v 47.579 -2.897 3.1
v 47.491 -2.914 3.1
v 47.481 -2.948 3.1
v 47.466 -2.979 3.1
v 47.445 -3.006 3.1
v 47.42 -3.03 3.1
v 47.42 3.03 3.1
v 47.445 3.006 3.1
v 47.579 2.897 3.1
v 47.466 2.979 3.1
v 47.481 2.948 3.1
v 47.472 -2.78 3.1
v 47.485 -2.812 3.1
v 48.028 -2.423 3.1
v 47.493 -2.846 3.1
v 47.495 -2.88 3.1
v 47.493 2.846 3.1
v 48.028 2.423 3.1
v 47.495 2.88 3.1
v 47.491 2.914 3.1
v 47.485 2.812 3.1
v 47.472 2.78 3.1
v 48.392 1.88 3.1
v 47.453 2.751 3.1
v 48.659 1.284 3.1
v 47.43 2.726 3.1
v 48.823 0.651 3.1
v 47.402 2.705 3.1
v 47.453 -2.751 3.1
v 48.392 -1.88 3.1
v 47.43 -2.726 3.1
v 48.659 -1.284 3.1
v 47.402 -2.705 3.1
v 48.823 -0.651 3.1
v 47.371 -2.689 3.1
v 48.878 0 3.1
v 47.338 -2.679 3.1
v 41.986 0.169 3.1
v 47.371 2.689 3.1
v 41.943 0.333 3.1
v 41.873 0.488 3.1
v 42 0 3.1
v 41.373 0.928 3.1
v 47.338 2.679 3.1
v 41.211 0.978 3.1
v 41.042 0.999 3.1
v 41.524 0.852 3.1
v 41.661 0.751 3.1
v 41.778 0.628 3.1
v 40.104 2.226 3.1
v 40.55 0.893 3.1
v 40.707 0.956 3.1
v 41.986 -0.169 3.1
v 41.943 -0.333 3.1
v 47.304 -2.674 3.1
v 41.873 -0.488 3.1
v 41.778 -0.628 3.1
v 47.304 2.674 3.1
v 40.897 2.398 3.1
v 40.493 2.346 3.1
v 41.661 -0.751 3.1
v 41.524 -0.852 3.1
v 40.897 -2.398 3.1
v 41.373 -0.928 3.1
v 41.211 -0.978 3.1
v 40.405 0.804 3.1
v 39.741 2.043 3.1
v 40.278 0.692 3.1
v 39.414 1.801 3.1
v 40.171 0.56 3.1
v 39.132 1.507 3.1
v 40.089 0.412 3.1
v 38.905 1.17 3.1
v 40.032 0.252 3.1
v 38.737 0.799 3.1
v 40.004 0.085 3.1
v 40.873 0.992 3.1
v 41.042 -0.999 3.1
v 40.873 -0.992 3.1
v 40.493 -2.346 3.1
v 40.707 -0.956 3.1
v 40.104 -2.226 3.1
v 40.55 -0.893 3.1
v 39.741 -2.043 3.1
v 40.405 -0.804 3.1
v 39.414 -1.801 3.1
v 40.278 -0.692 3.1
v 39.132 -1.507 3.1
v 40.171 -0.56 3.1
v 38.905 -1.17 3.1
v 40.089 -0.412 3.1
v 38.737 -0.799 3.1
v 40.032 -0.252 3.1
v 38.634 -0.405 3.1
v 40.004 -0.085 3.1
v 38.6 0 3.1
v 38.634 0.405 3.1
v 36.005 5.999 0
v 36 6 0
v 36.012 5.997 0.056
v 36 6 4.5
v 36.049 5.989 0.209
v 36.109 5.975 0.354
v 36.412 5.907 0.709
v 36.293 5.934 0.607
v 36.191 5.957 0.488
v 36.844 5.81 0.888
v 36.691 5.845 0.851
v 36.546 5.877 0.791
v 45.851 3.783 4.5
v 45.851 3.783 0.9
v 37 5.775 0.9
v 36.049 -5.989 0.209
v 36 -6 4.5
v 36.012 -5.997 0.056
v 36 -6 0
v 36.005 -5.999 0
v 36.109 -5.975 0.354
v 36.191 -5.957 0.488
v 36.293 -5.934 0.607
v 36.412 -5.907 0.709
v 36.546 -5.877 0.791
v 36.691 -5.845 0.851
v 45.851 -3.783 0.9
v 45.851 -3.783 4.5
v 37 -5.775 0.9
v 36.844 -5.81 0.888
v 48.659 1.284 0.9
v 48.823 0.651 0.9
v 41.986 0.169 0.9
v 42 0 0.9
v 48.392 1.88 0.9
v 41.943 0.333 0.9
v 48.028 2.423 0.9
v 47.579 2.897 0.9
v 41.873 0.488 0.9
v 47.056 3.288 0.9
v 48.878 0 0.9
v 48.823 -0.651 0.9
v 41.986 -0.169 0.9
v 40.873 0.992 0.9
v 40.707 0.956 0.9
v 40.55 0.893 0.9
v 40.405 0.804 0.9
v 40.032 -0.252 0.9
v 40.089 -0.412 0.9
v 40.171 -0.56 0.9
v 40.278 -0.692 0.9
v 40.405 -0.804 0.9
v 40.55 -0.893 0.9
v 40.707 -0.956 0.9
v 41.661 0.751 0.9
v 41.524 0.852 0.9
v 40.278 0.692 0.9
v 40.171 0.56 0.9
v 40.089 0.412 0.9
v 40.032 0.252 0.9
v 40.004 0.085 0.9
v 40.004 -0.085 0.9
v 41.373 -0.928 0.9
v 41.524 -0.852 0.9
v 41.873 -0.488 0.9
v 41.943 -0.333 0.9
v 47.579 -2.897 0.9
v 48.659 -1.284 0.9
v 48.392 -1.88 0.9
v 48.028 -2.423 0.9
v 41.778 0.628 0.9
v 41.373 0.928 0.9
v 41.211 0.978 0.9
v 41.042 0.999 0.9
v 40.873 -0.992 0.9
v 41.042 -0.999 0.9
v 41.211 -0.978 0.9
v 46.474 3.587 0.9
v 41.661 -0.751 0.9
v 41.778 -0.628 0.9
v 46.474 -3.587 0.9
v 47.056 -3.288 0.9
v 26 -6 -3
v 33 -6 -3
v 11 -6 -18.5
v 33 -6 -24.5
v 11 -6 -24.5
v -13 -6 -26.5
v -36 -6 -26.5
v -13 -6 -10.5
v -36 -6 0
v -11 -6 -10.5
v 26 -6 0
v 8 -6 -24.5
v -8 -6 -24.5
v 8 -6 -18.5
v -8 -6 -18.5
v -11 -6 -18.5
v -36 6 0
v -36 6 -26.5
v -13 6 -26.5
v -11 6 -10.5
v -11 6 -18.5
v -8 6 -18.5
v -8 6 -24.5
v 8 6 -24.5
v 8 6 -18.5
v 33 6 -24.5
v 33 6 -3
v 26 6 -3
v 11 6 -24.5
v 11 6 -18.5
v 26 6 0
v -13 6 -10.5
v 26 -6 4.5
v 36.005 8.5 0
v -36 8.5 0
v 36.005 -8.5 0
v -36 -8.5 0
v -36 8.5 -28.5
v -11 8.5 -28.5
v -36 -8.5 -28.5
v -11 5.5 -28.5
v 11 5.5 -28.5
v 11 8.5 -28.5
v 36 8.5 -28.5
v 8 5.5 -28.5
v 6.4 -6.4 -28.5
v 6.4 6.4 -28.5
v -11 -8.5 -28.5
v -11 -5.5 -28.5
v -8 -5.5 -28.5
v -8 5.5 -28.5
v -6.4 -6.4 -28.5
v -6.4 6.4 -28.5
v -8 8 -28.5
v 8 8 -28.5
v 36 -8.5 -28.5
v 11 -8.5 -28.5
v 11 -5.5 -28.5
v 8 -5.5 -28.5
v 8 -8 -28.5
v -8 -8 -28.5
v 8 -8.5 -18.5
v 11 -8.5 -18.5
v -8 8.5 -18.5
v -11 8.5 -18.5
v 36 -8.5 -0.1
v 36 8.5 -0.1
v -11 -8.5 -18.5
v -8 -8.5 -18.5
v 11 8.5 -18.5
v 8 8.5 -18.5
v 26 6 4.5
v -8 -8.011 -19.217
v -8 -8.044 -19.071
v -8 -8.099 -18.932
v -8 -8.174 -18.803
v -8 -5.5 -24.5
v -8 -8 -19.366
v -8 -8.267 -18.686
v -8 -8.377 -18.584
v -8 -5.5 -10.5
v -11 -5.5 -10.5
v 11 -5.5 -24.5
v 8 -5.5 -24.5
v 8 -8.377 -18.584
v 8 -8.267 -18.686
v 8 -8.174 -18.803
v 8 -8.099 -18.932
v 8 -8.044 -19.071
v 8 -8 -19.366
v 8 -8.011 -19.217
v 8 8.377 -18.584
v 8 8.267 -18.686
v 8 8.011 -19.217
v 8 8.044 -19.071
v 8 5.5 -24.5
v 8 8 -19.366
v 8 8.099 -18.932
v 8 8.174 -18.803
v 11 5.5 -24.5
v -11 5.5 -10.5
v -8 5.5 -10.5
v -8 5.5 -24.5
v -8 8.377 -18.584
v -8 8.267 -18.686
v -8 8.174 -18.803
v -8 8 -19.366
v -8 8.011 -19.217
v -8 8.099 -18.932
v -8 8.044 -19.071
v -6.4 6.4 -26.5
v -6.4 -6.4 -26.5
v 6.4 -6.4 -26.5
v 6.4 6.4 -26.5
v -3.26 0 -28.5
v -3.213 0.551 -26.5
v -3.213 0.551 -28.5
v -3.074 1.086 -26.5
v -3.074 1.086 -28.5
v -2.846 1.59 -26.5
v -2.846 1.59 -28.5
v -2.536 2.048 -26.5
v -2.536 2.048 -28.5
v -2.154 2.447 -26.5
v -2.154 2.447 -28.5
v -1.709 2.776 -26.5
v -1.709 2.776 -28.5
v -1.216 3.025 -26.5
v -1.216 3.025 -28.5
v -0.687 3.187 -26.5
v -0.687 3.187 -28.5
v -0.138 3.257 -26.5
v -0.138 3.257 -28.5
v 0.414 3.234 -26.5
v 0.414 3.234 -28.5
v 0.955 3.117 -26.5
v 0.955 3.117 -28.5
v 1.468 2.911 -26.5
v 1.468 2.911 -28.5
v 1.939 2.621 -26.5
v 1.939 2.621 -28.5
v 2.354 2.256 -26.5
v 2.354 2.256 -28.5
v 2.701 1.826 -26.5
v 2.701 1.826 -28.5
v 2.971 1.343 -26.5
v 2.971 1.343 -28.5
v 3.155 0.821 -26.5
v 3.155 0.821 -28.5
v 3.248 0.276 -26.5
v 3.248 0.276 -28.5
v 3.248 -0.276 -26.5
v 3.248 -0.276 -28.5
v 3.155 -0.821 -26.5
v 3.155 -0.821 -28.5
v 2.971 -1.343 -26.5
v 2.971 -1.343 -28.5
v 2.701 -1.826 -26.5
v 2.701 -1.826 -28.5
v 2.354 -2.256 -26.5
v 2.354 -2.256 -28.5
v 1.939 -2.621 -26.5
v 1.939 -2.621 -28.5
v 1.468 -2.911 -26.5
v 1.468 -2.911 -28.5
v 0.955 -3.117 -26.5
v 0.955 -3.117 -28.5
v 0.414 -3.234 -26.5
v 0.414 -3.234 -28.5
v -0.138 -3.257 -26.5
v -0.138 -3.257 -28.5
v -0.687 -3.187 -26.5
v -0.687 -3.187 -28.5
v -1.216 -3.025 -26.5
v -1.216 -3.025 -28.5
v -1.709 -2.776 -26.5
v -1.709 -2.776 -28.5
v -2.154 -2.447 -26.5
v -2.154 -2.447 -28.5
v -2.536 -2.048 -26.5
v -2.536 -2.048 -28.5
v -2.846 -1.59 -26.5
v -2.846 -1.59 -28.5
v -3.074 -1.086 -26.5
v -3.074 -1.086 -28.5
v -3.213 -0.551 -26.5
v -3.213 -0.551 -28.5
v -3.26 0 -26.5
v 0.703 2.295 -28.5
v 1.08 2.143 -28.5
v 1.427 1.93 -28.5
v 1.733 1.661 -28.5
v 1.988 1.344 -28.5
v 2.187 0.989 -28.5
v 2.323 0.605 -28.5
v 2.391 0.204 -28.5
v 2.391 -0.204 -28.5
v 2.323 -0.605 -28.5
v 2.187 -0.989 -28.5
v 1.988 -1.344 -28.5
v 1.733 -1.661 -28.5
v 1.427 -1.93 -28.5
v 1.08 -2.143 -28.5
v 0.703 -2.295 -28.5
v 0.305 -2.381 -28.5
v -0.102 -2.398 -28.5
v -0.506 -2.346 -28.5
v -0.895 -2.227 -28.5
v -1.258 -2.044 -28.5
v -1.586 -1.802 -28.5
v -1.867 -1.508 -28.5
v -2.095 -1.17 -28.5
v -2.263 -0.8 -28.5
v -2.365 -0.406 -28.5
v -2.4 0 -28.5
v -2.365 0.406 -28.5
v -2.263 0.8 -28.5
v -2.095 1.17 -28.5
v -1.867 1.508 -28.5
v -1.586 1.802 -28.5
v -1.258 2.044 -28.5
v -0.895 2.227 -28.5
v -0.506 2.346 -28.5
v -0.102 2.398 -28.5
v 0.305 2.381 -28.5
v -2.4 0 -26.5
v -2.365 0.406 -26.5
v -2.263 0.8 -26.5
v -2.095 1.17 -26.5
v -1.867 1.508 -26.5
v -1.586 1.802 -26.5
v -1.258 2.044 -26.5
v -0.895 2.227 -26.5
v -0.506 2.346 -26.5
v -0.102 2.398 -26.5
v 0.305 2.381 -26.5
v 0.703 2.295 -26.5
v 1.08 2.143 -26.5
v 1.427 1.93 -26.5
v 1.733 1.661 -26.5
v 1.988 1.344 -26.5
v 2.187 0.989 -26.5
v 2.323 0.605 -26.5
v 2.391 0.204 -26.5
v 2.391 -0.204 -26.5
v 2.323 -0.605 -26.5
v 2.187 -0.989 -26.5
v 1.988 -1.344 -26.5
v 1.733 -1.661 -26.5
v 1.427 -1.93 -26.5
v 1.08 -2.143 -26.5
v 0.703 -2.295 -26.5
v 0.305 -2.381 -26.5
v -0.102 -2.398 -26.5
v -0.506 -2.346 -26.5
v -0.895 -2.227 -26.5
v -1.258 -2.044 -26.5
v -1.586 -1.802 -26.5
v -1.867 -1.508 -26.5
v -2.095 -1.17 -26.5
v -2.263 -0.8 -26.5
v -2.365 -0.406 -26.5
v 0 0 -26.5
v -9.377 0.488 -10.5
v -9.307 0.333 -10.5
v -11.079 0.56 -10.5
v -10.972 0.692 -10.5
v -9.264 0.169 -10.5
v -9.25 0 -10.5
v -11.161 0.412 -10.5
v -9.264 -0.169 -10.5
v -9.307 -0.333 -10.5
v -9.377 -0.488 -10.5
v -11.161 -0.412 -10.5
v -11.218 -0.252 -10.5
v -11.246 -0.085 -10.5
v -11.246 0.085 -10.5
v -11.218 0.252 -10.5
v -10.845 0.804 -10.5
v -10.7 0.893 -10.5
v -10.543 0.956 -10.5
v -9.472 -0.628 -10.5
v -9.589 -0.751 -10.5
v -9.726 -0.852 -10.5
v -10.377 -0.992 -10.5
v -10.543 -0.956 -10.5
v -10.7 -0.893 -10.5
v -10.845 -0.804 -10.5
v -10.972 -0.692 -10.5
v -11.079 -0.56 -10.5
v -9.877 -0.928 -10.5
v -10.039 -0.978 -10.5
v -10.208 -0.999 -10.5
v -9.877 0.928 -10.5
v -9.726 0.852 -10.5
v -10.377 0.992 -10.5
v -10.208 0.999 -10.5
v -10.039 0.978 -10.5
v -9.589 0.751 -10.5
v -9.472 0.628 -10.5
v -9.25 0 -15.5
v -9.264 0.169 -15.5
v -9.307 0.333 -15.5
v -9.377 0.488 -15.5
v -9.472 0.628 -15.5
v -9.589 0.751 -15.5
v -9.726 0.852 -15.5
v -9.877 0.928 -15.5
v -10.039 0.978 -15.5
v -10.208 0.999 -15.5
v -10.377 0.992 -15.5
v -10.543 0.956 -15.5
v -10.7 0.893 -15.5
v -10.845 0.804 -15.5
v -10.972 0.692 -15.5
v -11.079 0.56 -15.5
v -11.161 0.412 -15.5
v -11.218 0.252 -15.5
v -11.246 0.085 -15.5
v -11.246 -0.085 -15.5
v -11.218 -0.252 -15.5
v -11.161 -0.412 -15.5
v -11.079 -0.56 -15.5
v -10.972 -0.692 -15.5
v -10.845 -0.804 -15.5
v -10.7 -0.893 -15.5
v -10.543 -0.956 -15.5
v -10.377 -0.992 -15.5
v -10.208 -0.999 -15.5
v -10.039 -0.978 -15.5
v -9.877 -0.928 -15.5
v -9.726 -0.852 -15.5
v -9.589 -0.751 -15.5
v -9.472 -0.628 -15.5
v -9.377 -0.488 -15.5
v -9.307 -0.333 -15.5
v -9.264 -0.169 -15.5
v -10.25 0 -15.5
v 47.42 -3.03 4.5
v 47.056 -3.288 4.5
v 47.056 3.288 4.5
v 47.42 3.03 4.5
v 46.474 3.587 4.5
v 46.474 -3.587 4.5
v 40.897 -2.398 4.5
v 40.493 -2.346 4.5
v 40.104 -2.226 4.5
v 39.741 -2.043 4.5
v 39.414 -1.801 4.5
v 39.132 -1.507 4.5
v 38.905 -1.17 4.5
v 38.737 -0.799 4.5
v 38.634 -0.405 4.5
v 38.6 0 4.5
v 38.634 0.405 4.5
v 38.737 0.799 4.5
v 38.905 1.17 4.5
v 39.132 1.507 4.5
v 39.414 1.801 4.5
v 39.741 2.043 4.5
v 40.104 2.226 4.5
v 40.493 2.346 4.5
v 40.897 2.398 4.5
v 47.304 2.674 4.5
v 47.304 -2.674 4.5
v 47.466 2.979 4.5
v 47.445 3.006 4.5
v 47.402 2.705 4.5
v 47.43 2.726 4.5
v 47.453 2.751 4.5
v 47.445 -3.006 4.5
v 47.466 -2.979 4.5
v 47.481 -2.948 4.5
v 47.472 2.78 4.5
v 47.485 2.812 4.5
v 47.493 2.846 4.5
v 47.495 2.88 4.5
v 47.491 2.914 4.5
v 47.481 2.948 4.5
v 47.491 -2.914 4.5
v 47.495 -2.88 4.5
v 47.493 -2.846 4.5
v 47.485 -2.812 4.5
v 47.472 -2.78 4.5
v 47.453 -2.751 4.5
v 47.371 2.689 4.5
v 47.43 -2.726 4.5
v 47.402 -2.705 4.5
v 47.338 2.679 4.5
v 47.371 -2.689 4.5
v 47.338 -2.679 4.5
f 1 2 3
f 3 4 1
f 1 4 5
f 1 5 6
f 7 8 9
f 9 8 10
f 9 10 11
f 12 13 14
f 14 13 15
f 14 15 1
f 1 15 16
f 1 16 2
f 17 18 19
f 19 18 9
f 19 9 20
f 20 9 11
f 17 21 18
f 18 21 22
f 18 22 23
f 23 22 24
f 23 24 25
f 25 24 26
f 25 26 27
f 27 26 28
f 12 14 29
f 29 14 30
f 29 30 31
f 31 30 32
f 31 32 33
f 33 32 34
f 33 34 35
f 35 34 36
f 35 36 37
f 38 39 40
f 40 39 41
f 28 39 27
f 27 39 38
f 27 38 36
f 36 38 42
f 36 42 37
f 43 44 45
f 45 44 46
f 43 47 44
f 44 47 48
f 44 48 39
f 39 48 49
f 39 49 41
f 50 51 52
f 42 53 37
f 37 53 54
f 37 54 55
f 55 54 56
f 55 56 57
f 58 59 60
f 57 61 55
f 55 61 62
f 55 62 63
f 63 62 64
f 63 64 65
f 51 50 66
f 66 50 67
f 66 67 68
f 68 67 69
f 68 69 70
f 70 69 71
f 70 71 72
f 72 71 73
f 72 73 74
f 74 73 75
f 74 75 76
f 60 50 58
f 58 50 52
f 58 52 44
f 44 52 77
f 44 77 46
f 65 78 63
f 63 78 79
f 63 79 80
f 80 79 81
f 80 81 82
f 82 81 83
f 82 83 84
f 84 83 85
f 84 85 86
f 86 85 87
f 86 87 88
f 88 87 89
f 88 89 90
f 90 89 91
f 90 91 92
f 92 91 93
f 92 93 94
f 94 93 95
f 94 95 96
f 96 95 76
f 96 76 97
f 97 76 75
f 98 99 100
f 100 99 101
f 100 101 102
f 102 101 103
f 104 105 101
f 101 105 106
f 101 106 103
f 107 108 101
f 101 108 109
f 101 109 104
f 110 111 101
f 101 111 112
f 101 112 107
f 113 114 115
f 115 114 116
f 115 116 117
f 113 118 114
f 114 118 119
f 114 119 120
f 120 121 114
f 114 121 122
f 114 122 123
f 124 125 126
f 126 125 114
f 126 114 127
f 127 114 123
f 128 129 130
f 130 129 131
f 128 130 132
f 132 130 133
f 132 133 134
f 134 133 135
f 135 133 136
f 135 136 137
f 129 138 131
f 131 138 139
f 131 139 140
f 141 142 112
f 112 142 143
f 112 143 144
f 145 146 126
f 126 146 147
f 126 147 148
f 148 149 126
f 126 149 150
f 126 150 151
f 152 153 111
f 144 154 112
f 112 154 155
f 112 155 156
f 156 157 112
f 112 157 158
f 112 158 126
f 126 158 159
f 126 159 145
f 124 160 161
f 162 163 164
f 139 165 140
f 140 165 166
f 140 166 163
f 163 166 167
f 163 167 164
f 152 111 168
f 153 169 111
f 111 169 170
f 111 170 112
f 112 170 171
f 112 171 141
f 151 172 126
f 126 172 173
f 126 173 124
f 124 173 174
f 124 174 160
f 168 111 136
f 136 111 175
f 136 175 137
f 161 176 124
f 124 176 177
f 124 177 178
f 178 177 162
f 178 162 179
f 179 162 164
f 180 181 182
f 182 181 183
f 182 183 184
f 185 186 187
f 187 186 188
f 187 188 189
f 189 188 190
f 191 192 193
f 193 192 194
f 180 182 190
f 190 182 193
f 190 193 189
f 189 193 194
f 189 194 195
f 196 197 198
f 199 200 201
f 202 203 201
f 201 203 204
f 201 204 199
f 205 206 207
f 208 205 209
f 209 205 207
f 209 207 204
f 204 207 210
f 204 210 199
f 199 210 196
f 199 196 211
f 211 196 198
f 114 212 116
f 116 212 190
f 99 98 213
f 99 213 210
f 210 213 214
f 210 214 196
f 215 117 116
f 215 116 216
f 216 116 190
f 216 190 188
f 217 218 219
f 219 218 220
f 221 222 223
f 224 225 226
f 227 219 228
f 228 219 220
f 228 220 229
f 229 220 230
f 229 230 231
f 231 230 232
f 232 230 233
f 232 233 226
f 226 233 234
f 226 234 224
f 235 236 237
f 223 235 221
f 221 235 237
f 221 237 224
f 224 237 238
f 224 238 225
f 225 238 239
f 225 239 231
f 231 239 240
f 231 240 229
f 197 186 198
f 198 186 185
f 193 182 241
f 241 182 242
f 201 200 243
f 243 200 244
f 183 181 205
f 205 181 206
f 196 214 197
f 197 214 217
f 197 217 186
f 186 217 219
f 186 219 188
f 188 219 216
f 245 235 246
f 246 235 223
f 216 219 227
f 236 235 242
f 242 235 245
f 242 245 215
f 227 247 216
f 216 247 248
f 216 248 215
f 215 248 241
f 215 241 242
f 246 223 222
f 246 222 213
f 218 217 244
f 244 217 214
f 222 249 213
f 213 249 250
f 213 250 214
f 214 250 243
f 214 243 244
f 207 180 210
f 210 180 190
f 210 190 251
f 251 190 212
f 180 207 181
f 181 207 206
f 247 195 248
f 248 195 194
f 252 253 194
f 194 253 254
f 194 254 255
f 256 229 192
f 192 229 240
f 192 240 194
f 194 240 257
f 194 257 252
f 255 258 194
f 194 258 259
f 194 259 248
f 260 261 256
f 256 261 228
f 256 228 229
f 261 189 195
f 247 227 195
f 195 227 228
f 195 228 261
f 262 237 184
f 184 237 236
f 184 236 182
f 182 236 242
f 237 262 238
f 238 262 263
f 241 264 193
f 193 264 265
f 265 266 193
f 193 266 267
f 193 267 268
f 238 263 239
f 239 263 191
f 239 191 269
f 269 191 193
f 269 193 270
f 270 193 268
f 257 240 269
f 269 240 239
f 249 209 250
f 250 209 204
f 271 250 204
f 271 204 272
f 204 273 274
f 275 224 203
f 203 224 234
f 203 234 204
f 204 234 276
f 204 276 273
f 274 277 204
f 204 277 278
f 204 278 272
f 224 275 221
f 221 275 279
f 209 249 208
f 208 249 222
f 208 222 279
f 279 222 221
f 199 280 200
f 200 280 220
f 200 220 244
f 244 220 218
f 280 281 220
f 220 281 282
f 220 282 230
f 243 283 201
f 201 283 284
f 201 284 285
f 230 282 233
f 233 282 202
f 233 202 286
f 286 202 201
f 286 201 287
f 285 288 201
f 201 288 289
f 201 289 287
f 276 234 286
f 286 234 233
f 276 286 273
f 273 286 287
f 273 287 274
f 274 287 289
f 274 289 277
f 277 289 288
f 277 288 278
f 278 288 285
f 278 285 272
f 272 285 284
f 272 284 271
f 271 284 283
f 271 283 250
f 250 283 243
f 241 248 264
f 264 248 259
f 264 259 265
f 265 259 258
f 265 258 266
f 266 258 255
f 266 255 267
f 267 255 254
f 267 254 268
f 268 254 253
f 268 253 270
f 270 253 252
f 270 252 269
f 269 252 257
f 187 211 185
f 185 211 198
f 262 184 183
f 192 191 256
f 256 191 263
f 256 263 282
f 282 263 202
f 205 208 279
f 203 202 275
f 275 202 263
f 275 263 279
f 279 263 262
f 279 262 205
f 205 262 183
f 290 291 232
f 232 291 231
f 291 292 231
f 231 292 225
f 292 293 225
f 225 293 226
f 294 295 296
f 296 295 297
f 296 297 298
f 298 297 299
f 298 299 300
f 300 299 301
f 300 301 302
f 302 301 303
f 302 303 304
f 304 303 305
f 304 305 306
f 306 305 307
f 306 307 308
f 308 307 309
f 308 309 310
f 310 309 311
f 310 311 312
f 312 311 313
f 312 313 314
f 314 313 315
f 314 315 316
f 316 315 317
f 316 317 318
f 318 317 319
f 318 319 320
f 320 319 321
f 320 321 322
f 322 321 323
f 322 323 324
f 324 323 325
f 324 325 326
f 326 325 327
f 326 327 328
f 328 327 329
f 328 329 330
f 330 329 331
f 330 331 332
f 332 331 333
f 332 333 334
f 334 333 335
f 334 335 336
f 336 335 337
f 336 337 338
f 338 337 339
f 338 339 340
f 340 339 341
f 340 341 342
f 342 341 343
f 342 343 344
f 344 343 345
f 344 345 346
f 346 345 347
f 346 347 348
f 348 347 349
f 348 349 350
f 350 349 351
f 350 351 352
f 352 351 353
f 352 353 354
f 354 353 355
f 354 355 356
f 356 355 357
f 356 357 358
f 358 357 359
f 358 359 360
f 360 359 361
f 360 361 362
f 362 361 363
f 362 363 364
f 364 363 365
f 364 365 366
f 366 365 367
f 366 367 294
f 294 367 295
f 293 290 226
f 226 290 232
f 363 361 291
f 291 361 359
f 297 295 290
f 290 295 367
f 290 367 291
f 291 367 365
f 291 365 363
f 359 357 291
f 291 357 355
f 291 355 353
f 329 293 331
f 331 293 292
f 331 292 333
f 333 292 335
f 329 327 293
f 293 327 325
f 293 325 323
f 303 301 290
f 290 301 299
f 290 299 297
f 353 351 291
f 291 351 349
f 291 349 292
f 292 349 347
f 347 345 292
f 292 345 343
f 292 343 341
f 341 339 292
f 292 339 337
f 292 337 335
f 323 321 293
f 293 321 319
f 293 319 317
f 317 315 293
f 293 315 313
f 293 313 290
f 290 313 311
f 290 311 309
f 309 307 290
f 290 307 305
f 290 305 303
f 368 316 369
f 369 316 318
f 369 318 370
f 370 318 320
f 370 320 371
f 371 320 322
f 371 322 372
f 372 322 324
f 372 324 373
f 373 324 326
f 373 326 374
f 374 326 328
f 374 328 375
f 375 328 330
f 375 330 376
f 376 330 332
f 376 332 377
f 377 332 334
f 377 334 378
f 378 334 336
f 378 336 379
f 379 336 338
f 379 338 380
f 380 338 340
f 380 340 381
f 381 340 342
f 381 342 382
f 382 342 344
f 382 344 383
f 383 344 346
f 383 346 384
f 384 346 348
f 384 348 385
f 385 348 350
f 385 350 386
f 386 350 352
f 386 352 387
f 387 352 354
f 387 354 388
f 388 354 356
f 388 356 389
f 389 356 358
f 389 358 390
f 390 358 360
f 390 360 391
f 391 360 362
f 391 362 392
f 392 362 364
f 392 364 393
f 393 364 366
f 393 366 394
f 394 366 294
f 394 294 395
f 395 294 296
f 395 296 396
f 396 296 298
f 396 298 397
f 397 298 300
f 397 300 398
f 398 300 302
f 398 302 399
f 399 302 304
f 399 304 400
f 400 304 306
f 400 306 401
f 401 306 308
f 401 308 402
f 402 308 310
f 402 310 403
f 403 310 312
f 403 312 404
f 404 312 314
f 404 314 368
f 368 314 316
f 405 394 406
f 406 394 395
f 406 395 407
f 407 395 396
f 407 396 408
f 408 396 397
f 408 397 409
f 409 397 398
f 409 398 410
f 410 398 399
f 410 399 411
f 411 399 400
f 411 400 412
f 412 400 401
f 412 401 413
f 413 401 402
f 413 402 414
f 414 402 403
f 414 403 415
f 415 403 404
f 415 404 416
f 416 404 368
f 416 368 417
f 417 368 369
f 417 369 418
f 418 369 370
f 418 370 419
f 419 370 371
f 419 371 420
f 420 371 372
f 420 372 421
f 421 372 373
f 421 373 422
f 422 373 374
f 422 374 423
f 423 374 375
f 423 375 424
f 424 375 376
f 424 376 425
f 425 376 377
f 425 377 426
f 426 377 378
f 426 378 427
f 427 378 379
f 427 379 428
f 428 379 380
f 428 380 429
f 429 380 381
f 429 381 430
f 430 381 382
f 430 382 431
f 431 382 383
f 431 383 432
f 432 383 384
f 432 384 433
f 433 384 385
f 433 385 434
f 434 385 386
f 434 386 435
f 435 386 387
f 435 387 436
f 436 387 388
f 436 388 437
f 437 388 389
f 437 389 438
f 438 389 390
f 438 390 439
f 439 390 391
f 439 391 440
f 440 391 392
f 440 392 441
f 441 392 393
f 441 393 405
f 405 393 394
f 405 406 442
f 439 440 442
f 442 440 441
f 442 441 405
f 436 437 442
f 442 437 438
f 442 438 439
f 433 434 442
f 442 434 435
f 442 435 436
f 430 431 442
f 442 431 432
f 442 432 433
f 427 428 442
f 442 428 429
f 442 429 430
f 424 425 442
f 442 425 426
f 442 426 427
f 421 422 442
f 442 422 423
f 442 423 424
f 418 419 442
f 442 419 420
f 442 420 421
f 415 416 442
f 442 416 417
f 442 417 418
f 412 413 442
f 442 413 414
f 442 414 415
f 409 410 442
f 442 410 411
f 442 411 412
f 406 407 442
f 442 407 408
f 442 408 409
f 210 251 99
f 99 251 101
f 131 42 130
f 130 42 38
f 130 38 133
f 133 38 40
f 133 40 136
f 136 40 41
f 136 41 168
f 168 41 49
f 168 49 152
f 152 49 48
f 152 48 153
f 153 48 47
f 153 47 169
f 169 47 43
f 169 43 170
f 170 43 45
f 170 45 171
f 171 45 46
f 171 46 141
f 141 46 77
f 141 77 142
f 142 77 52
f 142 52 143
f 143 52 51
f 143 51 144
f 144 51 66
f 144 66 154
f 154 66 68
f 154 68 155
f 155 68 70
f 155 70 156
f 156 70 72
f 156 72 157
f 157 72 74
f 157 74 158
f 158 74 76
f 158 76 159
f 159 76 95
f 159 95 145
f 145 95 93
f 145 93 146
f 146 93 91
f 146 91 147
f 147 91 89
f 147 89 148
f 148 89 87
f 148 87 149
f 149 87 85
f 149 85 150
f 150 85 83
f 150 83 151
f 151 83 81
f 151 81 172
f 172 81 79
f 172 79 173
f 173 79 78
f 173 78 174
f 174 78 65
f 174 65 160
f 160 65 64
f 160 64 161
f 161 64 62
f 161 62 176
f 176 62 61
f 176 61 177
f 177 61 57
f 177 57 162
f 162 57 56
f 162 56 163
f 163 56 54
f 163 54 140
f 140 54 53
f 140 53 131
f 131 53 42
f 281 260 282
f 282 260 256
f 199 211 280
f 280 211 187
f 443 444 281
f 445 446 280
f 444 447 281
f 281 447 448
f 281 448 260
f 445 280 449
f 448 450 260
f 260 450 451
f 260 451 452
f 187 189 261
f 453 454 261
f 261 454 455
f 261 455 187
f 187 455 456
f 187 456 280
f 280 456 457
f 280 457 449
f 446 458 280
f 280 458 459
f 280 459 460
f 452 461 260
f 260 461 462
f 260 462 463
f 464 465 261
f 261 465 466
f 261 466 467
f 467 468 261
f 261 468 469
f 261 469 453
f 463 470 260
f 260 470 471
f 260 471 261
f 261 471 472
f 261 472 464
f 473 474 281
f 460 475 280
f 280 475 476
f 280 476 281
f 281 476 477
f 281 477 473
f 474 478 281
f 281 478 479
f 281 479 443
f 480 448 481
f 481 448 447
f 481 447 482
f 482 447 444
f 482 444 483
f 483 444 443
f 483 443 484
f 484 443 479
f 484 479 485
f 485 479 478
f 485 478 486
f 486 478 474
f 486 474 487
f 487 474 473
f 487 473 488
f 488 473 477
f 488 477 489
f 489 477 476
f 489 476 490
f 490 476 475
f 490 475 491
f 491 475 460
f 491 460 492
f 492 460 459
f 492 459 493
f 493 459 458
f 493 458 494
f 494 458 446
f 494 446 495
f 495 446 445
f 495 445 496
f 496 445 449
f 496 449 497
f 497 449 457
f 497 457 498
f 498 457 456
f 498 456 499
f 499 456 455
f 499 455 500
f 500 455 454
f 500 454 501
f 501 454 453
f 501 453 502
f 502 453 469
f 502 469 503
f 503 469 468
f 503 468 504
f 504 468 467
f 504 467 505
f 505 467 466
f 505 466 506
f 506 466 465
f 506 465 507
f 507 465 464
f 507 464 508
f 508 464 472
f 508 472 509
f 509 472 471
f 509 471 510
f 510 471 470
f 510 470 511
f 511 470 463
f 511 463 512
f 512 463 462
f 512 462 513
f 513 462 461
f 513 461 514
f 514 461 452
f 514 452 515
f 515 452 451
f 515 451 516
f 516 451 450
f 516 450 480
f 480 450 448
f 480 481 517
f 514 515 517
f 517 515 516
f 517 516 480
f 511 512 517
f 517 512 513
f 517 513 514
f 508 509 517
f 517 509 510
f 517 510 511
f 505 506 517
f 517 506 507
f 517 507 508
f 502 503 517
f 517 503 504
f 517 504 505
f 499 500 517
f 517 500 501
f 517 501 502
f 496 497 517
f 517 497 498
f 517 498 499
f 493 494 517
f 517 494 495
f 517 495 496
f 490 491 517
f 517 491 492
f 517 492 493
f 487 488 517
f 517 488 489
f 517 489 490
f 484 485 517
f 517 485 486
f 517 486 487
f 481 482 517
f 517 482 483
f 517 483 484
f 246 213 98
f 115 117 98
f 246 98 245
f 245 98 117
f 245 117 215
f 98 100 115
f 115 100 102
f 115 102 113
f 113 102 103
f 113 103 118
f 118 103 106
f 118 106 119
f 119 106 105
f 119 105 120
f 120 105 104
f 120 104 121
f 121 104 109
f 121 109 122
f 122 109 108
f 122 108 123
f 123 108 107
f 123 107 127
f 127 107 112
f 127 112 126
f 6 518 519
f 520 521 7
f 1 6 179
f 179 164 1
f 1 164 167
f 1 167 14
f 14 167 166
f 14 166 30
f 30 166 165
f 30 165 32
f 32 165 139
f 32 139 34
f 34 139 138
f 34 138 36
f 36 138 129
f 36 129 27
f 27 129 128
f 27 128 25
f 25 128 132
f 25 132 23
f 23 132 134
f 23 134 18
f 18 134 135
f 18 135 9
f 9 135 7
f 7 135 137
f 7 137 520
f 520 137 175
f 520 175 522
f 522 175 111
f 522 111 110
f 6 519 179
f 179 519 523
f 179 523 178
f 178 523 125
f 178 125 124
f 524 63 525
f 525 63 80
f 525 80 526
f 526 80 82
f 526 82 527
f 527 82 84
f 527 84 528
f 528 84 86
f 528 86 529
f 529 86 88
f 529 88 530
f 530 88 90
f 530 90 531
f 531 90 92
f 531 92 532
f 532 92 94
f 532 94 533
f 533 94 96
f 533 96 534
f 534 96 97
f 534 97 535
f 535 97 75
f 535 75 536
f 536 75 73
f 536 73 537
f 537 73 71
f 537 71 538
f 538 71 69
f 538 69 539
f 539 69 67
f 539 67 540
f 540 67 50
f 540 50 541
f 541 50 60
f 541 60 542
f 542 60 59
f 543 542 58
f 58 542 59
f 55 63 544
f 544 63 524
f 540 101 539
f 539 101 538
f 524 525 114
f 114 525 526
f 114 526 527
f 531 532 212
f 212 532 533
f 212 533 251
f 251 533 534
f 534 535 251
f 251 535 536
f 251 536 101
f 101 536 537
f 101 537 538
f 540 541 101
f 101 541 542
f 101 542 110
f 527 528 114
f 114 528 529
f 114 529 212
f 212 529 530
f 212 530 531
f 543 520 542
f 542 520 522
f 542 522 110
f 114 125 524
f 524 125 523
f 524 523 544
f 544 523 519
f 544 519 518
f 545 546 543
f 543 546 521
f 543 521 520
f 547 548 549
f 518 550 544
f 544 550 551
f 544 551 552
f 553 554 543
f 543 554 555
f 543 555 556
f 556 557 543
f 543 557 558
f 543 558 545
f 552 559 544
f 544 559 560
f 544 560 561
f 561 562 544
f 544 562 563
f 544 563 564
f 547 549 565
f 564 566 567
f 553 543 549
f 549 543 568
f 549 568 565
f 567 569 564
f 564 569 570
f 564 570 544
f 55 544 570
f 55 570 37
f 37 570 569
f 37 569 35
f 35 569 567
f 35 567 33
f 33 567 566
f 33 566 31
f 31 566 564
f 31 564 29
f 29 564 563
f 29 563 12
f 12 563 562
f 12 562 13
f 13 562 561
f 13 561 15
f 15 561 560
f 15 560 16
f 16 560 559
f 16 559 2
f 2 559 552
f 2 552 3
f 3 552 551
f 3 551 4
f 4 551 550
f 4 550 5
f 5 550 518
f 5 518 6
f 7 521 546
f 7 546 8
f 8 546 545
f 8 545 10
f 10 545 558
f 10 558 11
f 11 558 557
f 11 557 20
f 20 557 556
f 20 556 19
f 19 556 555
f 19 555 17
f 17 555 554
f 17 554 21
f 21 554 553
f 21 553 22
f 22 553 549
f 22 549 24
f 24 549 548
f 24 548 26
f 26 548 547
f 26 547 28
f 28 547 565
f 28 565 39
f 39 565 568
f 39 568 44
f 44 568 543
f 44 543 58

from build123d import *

# Parameters (mm, degrees)
BOSS_EXTRUDE1_DEPTH      = 8.5
BOSS_EXTRUDE1_DEPTH_BACK = 8.5
SKETCH1_W                = 72
SKETCH1_H                = 28.5
SKETCH2_W                = 31.201469113
SKETCH2_H                = 12
CUT_EXTRUDE1_DEPTH       = 69
SKETCH3_W                = 10
SKETCH3_H                = 17
BOSS_EXTRUDE2_DEPTH      = 3
CUT_EXTRUDE2_DEPTH       = 10
FILLET1_R                = 1
BOSS_EXTRUDE3_DEPTH      = 2
SKETCH8_W                = 12.8
SKETCH8_H                = 12.8
SKETCH8_R                = 3.26
SKETCH8_R_2              = 2.4
CUT_EXTRUDE3_DEPTH       = 2
SKETCH11_W               = 26
SKETCH11_H               = 12
BOSS_EXTRUDE7_DEPTH      = 3.1
SKETCH14_R               = 1
CUT_EXTRUDE4_DEPTH       = 62.43948242
CUT_EXTRUDE6_DEPTH       = 62.43948242
CUT_EXTRUDE7_DEPTH       = 62.43948242
BOSS_EXTRUDE8_DEPTH      = 14
SKETCH19_R               = 1
CUT_EXTRUDE8_DEPTH       = 5
SKETCH20_W               = 17.87603411
SKETCH20_H               = 5.867107887
CUT_EXTRUDE9_DEPTH       = 62.686708455
FILLET4_R                = 1
CUT_EXTRUDE10_DEPTH      = 10
BOSS_EXTRUDE9_START      = 1.4
BOSS_EXTRUDE9_DEPTH      = 1.4
FILLET5_R                = 0.2


with BuildPart() as part:
    # Sketch1 → Boss-Extrude1 (new, two sides: drawn at the far end of the back side and taken through both)
    with BuildSketch(Plane(origin=(0, 0, 0), x_dir=(1, 0, 0), z_dir=(0, 1, 0)).offset(-BOSS_EXTRUDE1_DEPTH_BACK)):
        with Locations((0, 14.25)):
            Rectangle(SKETCH1_W, SKETCH1_H)
    extrude(amount=BOSS_EXTRUDE1_DEPTH + BOSS_EXTRUDE1_DEPTH_BACK)

    # Sketch2 → Cut-Extrude1 (cut)
    with BuildSketch(Plane.ZY.offset(36)):
        with Locations((-10.899265443, 0)):
            Rectangle(SKETCH2_W, SKETCH2_H)
    extrude(amount=-CUT_EXTRUDE1_DEPTH, mode=Mode.SUBTRACT)

    # Sketch3 → Boss-Extrude2 (add)
    with BuildSketch(Plane.XY):
        with Locations((31, 0)):
            Rectangle(SKETCH3_W, SKETCH3_H)
    extrude(amount=-BOSS_EXTRUDE2_DEPTH)

    # Sketch6 → Cut-Extrude2 (cut)
    with BuildSketch(Plane(origin=(0, 0, -28.5), x_dir=(-1, 0, 0), z_dir=(0, 0, -1))):
        Polygon((-11, 8.5), (-11, 5.5), (-8, 5.5), (-8, 8), (8, 8), (8, 5.5), (11, 5.5), (11, 8.5), align=None)
        Polygon((-11, -5.5), (-11, -8.5), (11, -8.5), (11, -5.5), (8, -5.5), (8, -8), (-8, -8), (-8, -5.5), align=None)
    extrude(amount=-CUT_EXTRUDE2_DEPTH, mode=Mode.SUBTRACT)

    # Fillet1
    # the kernel refuses this fillet: 1 mm, written as the material it adds along each edge
    with BuildSketch(Plane(origin=(-8, -8, -18.5), x_dir=(0, 0, -1), z_dir=(1, 0, 0)), Plane(origin=(8, 8, -18.5), x_dir=(0, 0, -1), z_dir=(-1, 0, 0))) as fillet1_piece_1:
        with BuildLine():
            CenterArc((0.866025404, -1), FILLET1_R, 90, 60)
            Line((0, -0.5), (-0.017320508, -0.49))
            ThreePointArc((-0.017320508, -0.49), (-0.02, -0.25), (-0.02, 0))
            Line((-0.02, 0), (0, 0.02))
            Line((0, 0.02), (0.866025404, 0.02))
            Line((0.866025404, 0.02), (0.866025404, 0))
        make_face()
    extrude(amount=16)

    # Sketch7 → Boss-Extrude3 (add)
    with BuildSketch(Plane.XY.offset(-26.5)):
        Polygon((33, -6), (33, 6), (11, 6), (11, 5.5), (8, 5.5), (8, 6), (-8, 6), (-8, 5.5), (-11, 5.5), (-11, 6), (-13, 6), (-13, -6), (-11, -6), (-11, -5.5), (-8, -5.5), (-8, -6), (8, -6), (8, -5.5), (11, -5.5), (11, -6), align=None)
    extrude(amount=BOSS_EXTRUDE3_DEPTH)

    # Sketch8 → Cut-Extrude3 (cut)
    # profile 1 of 2: a face of its own
    with BuildSketch(Plane(origin=(0, 0, -28.5), x_dir=(-1, 0, 0), z_dir=(0, 0, -1))):
        Rectangle(SKETCH8_W, SKETCH8_H)
        Circle(SKETCH8_R, mode=Mode.SUBTRACT)
    # profile 2 of 2: a face of its own
    with BuildSketch(Plane(origin=(0, 0, -28.5), x_dir=(-1, 0, 0), z_dir=(0, 0, -1))):
        Circle(SKETCH8_R_2)
    extrude(amount=-CUT_EXTRUDE3_DEPTH, mode=Mode.SUBTRACT)

    # Sketch11 → Boss-Extrude7 (add)
    with BuildSketch(Plane.XY.offset(3.1)):
        with Locations((39, 0)):
            Rectangle(SKETCH11_W, SKETCH11_H)
    extrude(amount=-BOSS_EXTRUDE7_DEPTH)

    # Sketch14 → Cut-Extrude4 (cut, through all)
    with BuildSketch(Plane.XY.offset(3.1)):
        with Locations((41, 0)):
            Circle(SKETCH14_R)
    extrude(amount=-CUT_EXTRUDE4_DEPTH, mode=Mode.SUBTRACT)

    # Sketch15 → Cut-Extrude6 (cut, through all)
    with BuildSketch(Plane.XY.offset(3.1)):
        with BuildLine():
            Line((52, 6), (36, 6))
            Line((36, 6), (49.658536622, 2.92682926))
            ThreePointArc((49.658536622, 2.92682926), (51.34260644, 1.874085128), (52, 0))
            Line((52, 0), (52, 6))
        make_face()
    extrude(amount=-CUT_EXTRUDE6_DEPTH, mode=Mode.SUBTRACT)

    # Sketch17 → Cut-Extrude7 (cut, through all)
    with BuildSketch(Plane.XY.offset(3.1)):
        with BuildLine():
            Line((36, -6), (52, -6))
            Line((52, -6), (52, 0))
            ThreePointArc((52, 0), (51.342606414, -1.874085161), (49.658536541, -2.926829278))
            Line((49.658536541, -2.926829278), (36, -6))
        make_face()
    extrude(amount=-CUT_EXTRUDE7_DEPTH, mode=Mode.SUBTRACT)

    # Sketch18 → Boss-Extrude8 (add)
    with BuildSketch(Plane.XY.offset(-24.5)):
        Polygon((-11, 6), (-13, 6), (-13, -6), (-11, -6), (-11, -5.5), (-8, -5.5), (-8, 5.5), (-11, 5.5), align=None)
    extrude(amount=BOSS_EXTRUDE8_DEPTH)

    # Sketch19 → Cut-Extrude8 (cut)
    with BuildSketch(Plane.XY.offset(-10.5)):
        with Locations((-10.25, 0)):
            Circle(SKETCH19_R)
    extrude(amount=-CUT_EXTRUDE8_DEPTH, mode=Mode.SUBTRACT)

    # Sketch20 → Cut-Extrude9 (cut, through all)
    with BuildSketch(Plane.XZ.offset(8.5)):
        with Locations((44.938017055, -2.033553943)):
            Rectangle(SKETCH20_W, SKETCH20_H)
    extrude(amount=-CUT_EXTRUDE9_DEPTH, mode=Mode.SUBTRACT)

    # Fillet4
    # the kernel refuses this fillet: 1 mm, written as the material it adds along each edge
    with BuildSketch(Plane(origin=(36, -8.5, 0.9), x_dir=(1, 0, 0), z_dir=(0, 1, 0))) as fillet4_piece_1_section:
        with BuildLine():
            CenterArc((FILLET4_R, FILLET4_R), FILLET4_R, 180, 90)
            Line((0, FILLET4_R), (0, 0))
            Line((0, 0), (FILLET4_R, 0))
        make_face()
    fillet4_piece_1 = extrude(amount=14.5, mode=Mode.PRIVATE)
    fillet4_piece_1 = split(fillet4_piece_1, bisect_by=Plane(origin=(35.990889593, -7.251037957, 0), z_dir=(0, 0, -1)), keep=Keep.TOP, mode=Mode.PRIVATE)
    fillet4_piece_1 = split(fillet4_piece_1, bisect_by=Plane(origin=(35.723408497, -6.062233088, -0.048071683), z_dir=(0.21951219512195128, -0.9756097560975611, 0)), keep=Keep.TOP, mode=Mode.PRIVATE)
    fillet4_piece_1 = split(fillet4_piece_1, bisect_by=Plane(origin=(35.990889593, -6, -0.048071683), z_dir=(0, -1, 0)), keep=Keep.TOP, mode=Mode.PRIVATE)
    add(fillet4_piece_1)
    with BuildSketch(Plane(origin=(36, -6, 0.9), x_dir=(1, 0, 0), z_dir=(0, 1, 0))) as fillet4_piece_2_section:
        with BuildLine():
            CenterArc((FILLET4_R, FILLET4_R), FILLET4_R, 180, 90)
            Line((0, FILLET4_R), (0, 0))
            Line((0, 0), (FILLET4_R, 0))
        make_face()
    fillet4_piece_2 = extrude(amount=12, mode=Mode.PRIVATE)
    fillet4_piece_2 = split(fillet4_piece_2, bisect_by=Plane(origin=(36.226665296, 0, 0), z_dir=(0, 0, 1)), keep=Keep.TOP, mode=Mode.PRIVATE)
    fillet4_piece_2 = split(fillet4_piece_2, bisect_by=Plane(origin=(37.500692727, 5.662344136, 0.678804193), z_dir=(-0.2195121951219508, -0.9756097560975612, 0)), keep=Keep.TOP, mode=Mode.PRIVATE)
    fillet4_piece_2 = split(fillet4_piece_2, bisect_by=Plane(origin=(37.500692727, -5.662344136, 0.678804193), z_dir=(-0.21951219512195128, 0.9756097560975611, 0)), keep=Keep.TOP, mode=Mode.PRIVATE)
    add(fillet4_piece_2)
    with BuildSketch(Plane(origin=(36, -6, 0.9), x_dir=(1, 0, 0), z_dir=(0, 1, 0))) as fillet4_piece_3_section:
        with BuildLine():
            CenterArc((FILLET4_R, FILLET4_R), FILLET4_R, 180, 90)
            Line((0, FILLET4_R), (0, 0))
            Line((0, 0), (FILLET4_R, 0))
        make_face()
    fillet4_piece_3 = extrude(amount=12, mode=Mode.PRIVATE)
    fillet4_piece_3 = split(fillet4_piece_3, bisect_by=Plane(origin=(35.990886035, 0, 0), z_dir=(0, 0, -1)), keep=Keep.TOP, mode=Mode.PRIVATE)
    add(fillet4_piece_3)
    with BuildSketch(Plane(origin=(36, -6, 0.9), x_dir=(1, 0, 0), z_dir=(0, 1, 0))) as fillet4_piece_4_section:
        with BuildLine():
            CenterArc((FILLET4_R, FILLET4_R), FILLET4_R, 180, 90)
            Line((0, FILLET4_R), (0, 0))
            Line((0, 0), (FILLET4_R, 0))
        make_face()
    fillet4_piece_4 = extrude(amount=14.5, mode=Mode.PRIVATE)
    fillet4_piece_4 = split(fillet4_piece_4, bisect_by=Plane(origin=(35.990889593, 7.251037957, 0), z_dir=(0, 0, -1)), keep=Keep.TOP, mode=Mode.PRIVATE)
    fillet4_piece_4 = split(fillet4_piece_4, bisect_by=Plane(origin=(35.990889593, 6, -0.048071683), z_dir=(0, 1, 0)), keep=Keep.TOP, mode=Mode.PRIVATE)
    fillet4_piece_4 = split(fillet4_piece_4, bisect_by=Plane(origin=(35.723408497, 6.062233088, -0.048071683), z_dir=(0.2195121951219508, 0.9756097560975612, 0)), keep=Keep.TOP, mode=Mode.PRIVATE)
    add(fillet4_piece_4)

    # Sketch21 → Cut-Extrude10 (cut)
    with BuildSketch(Plane.XY.offset(3.1)):
        with BuildLine():
            ThreePointArc((48.87804878, 0), (48.028247344, -2.422597855), (45.851279032, -3.783462218))
            Line((45.851279032, -3.783462218), (49.658536585, -2.926829268))
            ThreePointArc((49.658536585, -2.926829268), (52, 0), (49.658536585, 2.926829268))
            Line((49.658536585, 2.926829268), (45.851279024, 3.78346222))
            ThreePointArc((45.851279024, 3.78346222), (48.028247342, 2.422597858), (48.87804878, 0))
        make_face()
    extrude(amount=-CUT_EXTRUDE10_DEPTH, mode=Mode.SUBTRACT)

    # Sketch23 → Boss-Extrude9 (add)
    with BuildSketch(Plane.XY.offset(3.1).offset(BOSS_EXTRUDE9_START)):
        with BuildLine():
            ThreePointArc((40.896590916, -2.397771165), (38.6, -8e-09), (40.896590899, 2.397771165))
            Line((40.896590899, 2.397771165), (47.78858717, 2.695003514))
            ThreePointArc((47.78858717, 2.695003514), (46.899563641, 3.380964406), (45.851279001, 3.783462225))
            Line((45.851279001, 3.783462225), (36, 6))
            Line((36, 6), (26, 6))
            Line((26, 6), (26, -6))
            Line((26, -6), (36, -6))
            Line((36, -6), (45.851279001, -3.783462225))
            ThreePointArc((45.851279001, -3.783462225), (46.899563641, -3.380964406), (47.78858717, -2.695003514))
            Line((47.78858717, -2.695003514), (40.896590916, -2.397771165))
        make_face()
    extrude(amount=-BOSS_EXTRUDE9_DEPTH)

    # Fillet5
    fillet5_edges = [part.edges().sort_by_distance(p)[0] for p in [
        (47.78858717, 2.695003514, 3.8),
        (47.78858717, -2.695003514, 3.8),
    ]]
    fillet(fillet5_edges, radius=FILLET5_R)


solid = part.part
